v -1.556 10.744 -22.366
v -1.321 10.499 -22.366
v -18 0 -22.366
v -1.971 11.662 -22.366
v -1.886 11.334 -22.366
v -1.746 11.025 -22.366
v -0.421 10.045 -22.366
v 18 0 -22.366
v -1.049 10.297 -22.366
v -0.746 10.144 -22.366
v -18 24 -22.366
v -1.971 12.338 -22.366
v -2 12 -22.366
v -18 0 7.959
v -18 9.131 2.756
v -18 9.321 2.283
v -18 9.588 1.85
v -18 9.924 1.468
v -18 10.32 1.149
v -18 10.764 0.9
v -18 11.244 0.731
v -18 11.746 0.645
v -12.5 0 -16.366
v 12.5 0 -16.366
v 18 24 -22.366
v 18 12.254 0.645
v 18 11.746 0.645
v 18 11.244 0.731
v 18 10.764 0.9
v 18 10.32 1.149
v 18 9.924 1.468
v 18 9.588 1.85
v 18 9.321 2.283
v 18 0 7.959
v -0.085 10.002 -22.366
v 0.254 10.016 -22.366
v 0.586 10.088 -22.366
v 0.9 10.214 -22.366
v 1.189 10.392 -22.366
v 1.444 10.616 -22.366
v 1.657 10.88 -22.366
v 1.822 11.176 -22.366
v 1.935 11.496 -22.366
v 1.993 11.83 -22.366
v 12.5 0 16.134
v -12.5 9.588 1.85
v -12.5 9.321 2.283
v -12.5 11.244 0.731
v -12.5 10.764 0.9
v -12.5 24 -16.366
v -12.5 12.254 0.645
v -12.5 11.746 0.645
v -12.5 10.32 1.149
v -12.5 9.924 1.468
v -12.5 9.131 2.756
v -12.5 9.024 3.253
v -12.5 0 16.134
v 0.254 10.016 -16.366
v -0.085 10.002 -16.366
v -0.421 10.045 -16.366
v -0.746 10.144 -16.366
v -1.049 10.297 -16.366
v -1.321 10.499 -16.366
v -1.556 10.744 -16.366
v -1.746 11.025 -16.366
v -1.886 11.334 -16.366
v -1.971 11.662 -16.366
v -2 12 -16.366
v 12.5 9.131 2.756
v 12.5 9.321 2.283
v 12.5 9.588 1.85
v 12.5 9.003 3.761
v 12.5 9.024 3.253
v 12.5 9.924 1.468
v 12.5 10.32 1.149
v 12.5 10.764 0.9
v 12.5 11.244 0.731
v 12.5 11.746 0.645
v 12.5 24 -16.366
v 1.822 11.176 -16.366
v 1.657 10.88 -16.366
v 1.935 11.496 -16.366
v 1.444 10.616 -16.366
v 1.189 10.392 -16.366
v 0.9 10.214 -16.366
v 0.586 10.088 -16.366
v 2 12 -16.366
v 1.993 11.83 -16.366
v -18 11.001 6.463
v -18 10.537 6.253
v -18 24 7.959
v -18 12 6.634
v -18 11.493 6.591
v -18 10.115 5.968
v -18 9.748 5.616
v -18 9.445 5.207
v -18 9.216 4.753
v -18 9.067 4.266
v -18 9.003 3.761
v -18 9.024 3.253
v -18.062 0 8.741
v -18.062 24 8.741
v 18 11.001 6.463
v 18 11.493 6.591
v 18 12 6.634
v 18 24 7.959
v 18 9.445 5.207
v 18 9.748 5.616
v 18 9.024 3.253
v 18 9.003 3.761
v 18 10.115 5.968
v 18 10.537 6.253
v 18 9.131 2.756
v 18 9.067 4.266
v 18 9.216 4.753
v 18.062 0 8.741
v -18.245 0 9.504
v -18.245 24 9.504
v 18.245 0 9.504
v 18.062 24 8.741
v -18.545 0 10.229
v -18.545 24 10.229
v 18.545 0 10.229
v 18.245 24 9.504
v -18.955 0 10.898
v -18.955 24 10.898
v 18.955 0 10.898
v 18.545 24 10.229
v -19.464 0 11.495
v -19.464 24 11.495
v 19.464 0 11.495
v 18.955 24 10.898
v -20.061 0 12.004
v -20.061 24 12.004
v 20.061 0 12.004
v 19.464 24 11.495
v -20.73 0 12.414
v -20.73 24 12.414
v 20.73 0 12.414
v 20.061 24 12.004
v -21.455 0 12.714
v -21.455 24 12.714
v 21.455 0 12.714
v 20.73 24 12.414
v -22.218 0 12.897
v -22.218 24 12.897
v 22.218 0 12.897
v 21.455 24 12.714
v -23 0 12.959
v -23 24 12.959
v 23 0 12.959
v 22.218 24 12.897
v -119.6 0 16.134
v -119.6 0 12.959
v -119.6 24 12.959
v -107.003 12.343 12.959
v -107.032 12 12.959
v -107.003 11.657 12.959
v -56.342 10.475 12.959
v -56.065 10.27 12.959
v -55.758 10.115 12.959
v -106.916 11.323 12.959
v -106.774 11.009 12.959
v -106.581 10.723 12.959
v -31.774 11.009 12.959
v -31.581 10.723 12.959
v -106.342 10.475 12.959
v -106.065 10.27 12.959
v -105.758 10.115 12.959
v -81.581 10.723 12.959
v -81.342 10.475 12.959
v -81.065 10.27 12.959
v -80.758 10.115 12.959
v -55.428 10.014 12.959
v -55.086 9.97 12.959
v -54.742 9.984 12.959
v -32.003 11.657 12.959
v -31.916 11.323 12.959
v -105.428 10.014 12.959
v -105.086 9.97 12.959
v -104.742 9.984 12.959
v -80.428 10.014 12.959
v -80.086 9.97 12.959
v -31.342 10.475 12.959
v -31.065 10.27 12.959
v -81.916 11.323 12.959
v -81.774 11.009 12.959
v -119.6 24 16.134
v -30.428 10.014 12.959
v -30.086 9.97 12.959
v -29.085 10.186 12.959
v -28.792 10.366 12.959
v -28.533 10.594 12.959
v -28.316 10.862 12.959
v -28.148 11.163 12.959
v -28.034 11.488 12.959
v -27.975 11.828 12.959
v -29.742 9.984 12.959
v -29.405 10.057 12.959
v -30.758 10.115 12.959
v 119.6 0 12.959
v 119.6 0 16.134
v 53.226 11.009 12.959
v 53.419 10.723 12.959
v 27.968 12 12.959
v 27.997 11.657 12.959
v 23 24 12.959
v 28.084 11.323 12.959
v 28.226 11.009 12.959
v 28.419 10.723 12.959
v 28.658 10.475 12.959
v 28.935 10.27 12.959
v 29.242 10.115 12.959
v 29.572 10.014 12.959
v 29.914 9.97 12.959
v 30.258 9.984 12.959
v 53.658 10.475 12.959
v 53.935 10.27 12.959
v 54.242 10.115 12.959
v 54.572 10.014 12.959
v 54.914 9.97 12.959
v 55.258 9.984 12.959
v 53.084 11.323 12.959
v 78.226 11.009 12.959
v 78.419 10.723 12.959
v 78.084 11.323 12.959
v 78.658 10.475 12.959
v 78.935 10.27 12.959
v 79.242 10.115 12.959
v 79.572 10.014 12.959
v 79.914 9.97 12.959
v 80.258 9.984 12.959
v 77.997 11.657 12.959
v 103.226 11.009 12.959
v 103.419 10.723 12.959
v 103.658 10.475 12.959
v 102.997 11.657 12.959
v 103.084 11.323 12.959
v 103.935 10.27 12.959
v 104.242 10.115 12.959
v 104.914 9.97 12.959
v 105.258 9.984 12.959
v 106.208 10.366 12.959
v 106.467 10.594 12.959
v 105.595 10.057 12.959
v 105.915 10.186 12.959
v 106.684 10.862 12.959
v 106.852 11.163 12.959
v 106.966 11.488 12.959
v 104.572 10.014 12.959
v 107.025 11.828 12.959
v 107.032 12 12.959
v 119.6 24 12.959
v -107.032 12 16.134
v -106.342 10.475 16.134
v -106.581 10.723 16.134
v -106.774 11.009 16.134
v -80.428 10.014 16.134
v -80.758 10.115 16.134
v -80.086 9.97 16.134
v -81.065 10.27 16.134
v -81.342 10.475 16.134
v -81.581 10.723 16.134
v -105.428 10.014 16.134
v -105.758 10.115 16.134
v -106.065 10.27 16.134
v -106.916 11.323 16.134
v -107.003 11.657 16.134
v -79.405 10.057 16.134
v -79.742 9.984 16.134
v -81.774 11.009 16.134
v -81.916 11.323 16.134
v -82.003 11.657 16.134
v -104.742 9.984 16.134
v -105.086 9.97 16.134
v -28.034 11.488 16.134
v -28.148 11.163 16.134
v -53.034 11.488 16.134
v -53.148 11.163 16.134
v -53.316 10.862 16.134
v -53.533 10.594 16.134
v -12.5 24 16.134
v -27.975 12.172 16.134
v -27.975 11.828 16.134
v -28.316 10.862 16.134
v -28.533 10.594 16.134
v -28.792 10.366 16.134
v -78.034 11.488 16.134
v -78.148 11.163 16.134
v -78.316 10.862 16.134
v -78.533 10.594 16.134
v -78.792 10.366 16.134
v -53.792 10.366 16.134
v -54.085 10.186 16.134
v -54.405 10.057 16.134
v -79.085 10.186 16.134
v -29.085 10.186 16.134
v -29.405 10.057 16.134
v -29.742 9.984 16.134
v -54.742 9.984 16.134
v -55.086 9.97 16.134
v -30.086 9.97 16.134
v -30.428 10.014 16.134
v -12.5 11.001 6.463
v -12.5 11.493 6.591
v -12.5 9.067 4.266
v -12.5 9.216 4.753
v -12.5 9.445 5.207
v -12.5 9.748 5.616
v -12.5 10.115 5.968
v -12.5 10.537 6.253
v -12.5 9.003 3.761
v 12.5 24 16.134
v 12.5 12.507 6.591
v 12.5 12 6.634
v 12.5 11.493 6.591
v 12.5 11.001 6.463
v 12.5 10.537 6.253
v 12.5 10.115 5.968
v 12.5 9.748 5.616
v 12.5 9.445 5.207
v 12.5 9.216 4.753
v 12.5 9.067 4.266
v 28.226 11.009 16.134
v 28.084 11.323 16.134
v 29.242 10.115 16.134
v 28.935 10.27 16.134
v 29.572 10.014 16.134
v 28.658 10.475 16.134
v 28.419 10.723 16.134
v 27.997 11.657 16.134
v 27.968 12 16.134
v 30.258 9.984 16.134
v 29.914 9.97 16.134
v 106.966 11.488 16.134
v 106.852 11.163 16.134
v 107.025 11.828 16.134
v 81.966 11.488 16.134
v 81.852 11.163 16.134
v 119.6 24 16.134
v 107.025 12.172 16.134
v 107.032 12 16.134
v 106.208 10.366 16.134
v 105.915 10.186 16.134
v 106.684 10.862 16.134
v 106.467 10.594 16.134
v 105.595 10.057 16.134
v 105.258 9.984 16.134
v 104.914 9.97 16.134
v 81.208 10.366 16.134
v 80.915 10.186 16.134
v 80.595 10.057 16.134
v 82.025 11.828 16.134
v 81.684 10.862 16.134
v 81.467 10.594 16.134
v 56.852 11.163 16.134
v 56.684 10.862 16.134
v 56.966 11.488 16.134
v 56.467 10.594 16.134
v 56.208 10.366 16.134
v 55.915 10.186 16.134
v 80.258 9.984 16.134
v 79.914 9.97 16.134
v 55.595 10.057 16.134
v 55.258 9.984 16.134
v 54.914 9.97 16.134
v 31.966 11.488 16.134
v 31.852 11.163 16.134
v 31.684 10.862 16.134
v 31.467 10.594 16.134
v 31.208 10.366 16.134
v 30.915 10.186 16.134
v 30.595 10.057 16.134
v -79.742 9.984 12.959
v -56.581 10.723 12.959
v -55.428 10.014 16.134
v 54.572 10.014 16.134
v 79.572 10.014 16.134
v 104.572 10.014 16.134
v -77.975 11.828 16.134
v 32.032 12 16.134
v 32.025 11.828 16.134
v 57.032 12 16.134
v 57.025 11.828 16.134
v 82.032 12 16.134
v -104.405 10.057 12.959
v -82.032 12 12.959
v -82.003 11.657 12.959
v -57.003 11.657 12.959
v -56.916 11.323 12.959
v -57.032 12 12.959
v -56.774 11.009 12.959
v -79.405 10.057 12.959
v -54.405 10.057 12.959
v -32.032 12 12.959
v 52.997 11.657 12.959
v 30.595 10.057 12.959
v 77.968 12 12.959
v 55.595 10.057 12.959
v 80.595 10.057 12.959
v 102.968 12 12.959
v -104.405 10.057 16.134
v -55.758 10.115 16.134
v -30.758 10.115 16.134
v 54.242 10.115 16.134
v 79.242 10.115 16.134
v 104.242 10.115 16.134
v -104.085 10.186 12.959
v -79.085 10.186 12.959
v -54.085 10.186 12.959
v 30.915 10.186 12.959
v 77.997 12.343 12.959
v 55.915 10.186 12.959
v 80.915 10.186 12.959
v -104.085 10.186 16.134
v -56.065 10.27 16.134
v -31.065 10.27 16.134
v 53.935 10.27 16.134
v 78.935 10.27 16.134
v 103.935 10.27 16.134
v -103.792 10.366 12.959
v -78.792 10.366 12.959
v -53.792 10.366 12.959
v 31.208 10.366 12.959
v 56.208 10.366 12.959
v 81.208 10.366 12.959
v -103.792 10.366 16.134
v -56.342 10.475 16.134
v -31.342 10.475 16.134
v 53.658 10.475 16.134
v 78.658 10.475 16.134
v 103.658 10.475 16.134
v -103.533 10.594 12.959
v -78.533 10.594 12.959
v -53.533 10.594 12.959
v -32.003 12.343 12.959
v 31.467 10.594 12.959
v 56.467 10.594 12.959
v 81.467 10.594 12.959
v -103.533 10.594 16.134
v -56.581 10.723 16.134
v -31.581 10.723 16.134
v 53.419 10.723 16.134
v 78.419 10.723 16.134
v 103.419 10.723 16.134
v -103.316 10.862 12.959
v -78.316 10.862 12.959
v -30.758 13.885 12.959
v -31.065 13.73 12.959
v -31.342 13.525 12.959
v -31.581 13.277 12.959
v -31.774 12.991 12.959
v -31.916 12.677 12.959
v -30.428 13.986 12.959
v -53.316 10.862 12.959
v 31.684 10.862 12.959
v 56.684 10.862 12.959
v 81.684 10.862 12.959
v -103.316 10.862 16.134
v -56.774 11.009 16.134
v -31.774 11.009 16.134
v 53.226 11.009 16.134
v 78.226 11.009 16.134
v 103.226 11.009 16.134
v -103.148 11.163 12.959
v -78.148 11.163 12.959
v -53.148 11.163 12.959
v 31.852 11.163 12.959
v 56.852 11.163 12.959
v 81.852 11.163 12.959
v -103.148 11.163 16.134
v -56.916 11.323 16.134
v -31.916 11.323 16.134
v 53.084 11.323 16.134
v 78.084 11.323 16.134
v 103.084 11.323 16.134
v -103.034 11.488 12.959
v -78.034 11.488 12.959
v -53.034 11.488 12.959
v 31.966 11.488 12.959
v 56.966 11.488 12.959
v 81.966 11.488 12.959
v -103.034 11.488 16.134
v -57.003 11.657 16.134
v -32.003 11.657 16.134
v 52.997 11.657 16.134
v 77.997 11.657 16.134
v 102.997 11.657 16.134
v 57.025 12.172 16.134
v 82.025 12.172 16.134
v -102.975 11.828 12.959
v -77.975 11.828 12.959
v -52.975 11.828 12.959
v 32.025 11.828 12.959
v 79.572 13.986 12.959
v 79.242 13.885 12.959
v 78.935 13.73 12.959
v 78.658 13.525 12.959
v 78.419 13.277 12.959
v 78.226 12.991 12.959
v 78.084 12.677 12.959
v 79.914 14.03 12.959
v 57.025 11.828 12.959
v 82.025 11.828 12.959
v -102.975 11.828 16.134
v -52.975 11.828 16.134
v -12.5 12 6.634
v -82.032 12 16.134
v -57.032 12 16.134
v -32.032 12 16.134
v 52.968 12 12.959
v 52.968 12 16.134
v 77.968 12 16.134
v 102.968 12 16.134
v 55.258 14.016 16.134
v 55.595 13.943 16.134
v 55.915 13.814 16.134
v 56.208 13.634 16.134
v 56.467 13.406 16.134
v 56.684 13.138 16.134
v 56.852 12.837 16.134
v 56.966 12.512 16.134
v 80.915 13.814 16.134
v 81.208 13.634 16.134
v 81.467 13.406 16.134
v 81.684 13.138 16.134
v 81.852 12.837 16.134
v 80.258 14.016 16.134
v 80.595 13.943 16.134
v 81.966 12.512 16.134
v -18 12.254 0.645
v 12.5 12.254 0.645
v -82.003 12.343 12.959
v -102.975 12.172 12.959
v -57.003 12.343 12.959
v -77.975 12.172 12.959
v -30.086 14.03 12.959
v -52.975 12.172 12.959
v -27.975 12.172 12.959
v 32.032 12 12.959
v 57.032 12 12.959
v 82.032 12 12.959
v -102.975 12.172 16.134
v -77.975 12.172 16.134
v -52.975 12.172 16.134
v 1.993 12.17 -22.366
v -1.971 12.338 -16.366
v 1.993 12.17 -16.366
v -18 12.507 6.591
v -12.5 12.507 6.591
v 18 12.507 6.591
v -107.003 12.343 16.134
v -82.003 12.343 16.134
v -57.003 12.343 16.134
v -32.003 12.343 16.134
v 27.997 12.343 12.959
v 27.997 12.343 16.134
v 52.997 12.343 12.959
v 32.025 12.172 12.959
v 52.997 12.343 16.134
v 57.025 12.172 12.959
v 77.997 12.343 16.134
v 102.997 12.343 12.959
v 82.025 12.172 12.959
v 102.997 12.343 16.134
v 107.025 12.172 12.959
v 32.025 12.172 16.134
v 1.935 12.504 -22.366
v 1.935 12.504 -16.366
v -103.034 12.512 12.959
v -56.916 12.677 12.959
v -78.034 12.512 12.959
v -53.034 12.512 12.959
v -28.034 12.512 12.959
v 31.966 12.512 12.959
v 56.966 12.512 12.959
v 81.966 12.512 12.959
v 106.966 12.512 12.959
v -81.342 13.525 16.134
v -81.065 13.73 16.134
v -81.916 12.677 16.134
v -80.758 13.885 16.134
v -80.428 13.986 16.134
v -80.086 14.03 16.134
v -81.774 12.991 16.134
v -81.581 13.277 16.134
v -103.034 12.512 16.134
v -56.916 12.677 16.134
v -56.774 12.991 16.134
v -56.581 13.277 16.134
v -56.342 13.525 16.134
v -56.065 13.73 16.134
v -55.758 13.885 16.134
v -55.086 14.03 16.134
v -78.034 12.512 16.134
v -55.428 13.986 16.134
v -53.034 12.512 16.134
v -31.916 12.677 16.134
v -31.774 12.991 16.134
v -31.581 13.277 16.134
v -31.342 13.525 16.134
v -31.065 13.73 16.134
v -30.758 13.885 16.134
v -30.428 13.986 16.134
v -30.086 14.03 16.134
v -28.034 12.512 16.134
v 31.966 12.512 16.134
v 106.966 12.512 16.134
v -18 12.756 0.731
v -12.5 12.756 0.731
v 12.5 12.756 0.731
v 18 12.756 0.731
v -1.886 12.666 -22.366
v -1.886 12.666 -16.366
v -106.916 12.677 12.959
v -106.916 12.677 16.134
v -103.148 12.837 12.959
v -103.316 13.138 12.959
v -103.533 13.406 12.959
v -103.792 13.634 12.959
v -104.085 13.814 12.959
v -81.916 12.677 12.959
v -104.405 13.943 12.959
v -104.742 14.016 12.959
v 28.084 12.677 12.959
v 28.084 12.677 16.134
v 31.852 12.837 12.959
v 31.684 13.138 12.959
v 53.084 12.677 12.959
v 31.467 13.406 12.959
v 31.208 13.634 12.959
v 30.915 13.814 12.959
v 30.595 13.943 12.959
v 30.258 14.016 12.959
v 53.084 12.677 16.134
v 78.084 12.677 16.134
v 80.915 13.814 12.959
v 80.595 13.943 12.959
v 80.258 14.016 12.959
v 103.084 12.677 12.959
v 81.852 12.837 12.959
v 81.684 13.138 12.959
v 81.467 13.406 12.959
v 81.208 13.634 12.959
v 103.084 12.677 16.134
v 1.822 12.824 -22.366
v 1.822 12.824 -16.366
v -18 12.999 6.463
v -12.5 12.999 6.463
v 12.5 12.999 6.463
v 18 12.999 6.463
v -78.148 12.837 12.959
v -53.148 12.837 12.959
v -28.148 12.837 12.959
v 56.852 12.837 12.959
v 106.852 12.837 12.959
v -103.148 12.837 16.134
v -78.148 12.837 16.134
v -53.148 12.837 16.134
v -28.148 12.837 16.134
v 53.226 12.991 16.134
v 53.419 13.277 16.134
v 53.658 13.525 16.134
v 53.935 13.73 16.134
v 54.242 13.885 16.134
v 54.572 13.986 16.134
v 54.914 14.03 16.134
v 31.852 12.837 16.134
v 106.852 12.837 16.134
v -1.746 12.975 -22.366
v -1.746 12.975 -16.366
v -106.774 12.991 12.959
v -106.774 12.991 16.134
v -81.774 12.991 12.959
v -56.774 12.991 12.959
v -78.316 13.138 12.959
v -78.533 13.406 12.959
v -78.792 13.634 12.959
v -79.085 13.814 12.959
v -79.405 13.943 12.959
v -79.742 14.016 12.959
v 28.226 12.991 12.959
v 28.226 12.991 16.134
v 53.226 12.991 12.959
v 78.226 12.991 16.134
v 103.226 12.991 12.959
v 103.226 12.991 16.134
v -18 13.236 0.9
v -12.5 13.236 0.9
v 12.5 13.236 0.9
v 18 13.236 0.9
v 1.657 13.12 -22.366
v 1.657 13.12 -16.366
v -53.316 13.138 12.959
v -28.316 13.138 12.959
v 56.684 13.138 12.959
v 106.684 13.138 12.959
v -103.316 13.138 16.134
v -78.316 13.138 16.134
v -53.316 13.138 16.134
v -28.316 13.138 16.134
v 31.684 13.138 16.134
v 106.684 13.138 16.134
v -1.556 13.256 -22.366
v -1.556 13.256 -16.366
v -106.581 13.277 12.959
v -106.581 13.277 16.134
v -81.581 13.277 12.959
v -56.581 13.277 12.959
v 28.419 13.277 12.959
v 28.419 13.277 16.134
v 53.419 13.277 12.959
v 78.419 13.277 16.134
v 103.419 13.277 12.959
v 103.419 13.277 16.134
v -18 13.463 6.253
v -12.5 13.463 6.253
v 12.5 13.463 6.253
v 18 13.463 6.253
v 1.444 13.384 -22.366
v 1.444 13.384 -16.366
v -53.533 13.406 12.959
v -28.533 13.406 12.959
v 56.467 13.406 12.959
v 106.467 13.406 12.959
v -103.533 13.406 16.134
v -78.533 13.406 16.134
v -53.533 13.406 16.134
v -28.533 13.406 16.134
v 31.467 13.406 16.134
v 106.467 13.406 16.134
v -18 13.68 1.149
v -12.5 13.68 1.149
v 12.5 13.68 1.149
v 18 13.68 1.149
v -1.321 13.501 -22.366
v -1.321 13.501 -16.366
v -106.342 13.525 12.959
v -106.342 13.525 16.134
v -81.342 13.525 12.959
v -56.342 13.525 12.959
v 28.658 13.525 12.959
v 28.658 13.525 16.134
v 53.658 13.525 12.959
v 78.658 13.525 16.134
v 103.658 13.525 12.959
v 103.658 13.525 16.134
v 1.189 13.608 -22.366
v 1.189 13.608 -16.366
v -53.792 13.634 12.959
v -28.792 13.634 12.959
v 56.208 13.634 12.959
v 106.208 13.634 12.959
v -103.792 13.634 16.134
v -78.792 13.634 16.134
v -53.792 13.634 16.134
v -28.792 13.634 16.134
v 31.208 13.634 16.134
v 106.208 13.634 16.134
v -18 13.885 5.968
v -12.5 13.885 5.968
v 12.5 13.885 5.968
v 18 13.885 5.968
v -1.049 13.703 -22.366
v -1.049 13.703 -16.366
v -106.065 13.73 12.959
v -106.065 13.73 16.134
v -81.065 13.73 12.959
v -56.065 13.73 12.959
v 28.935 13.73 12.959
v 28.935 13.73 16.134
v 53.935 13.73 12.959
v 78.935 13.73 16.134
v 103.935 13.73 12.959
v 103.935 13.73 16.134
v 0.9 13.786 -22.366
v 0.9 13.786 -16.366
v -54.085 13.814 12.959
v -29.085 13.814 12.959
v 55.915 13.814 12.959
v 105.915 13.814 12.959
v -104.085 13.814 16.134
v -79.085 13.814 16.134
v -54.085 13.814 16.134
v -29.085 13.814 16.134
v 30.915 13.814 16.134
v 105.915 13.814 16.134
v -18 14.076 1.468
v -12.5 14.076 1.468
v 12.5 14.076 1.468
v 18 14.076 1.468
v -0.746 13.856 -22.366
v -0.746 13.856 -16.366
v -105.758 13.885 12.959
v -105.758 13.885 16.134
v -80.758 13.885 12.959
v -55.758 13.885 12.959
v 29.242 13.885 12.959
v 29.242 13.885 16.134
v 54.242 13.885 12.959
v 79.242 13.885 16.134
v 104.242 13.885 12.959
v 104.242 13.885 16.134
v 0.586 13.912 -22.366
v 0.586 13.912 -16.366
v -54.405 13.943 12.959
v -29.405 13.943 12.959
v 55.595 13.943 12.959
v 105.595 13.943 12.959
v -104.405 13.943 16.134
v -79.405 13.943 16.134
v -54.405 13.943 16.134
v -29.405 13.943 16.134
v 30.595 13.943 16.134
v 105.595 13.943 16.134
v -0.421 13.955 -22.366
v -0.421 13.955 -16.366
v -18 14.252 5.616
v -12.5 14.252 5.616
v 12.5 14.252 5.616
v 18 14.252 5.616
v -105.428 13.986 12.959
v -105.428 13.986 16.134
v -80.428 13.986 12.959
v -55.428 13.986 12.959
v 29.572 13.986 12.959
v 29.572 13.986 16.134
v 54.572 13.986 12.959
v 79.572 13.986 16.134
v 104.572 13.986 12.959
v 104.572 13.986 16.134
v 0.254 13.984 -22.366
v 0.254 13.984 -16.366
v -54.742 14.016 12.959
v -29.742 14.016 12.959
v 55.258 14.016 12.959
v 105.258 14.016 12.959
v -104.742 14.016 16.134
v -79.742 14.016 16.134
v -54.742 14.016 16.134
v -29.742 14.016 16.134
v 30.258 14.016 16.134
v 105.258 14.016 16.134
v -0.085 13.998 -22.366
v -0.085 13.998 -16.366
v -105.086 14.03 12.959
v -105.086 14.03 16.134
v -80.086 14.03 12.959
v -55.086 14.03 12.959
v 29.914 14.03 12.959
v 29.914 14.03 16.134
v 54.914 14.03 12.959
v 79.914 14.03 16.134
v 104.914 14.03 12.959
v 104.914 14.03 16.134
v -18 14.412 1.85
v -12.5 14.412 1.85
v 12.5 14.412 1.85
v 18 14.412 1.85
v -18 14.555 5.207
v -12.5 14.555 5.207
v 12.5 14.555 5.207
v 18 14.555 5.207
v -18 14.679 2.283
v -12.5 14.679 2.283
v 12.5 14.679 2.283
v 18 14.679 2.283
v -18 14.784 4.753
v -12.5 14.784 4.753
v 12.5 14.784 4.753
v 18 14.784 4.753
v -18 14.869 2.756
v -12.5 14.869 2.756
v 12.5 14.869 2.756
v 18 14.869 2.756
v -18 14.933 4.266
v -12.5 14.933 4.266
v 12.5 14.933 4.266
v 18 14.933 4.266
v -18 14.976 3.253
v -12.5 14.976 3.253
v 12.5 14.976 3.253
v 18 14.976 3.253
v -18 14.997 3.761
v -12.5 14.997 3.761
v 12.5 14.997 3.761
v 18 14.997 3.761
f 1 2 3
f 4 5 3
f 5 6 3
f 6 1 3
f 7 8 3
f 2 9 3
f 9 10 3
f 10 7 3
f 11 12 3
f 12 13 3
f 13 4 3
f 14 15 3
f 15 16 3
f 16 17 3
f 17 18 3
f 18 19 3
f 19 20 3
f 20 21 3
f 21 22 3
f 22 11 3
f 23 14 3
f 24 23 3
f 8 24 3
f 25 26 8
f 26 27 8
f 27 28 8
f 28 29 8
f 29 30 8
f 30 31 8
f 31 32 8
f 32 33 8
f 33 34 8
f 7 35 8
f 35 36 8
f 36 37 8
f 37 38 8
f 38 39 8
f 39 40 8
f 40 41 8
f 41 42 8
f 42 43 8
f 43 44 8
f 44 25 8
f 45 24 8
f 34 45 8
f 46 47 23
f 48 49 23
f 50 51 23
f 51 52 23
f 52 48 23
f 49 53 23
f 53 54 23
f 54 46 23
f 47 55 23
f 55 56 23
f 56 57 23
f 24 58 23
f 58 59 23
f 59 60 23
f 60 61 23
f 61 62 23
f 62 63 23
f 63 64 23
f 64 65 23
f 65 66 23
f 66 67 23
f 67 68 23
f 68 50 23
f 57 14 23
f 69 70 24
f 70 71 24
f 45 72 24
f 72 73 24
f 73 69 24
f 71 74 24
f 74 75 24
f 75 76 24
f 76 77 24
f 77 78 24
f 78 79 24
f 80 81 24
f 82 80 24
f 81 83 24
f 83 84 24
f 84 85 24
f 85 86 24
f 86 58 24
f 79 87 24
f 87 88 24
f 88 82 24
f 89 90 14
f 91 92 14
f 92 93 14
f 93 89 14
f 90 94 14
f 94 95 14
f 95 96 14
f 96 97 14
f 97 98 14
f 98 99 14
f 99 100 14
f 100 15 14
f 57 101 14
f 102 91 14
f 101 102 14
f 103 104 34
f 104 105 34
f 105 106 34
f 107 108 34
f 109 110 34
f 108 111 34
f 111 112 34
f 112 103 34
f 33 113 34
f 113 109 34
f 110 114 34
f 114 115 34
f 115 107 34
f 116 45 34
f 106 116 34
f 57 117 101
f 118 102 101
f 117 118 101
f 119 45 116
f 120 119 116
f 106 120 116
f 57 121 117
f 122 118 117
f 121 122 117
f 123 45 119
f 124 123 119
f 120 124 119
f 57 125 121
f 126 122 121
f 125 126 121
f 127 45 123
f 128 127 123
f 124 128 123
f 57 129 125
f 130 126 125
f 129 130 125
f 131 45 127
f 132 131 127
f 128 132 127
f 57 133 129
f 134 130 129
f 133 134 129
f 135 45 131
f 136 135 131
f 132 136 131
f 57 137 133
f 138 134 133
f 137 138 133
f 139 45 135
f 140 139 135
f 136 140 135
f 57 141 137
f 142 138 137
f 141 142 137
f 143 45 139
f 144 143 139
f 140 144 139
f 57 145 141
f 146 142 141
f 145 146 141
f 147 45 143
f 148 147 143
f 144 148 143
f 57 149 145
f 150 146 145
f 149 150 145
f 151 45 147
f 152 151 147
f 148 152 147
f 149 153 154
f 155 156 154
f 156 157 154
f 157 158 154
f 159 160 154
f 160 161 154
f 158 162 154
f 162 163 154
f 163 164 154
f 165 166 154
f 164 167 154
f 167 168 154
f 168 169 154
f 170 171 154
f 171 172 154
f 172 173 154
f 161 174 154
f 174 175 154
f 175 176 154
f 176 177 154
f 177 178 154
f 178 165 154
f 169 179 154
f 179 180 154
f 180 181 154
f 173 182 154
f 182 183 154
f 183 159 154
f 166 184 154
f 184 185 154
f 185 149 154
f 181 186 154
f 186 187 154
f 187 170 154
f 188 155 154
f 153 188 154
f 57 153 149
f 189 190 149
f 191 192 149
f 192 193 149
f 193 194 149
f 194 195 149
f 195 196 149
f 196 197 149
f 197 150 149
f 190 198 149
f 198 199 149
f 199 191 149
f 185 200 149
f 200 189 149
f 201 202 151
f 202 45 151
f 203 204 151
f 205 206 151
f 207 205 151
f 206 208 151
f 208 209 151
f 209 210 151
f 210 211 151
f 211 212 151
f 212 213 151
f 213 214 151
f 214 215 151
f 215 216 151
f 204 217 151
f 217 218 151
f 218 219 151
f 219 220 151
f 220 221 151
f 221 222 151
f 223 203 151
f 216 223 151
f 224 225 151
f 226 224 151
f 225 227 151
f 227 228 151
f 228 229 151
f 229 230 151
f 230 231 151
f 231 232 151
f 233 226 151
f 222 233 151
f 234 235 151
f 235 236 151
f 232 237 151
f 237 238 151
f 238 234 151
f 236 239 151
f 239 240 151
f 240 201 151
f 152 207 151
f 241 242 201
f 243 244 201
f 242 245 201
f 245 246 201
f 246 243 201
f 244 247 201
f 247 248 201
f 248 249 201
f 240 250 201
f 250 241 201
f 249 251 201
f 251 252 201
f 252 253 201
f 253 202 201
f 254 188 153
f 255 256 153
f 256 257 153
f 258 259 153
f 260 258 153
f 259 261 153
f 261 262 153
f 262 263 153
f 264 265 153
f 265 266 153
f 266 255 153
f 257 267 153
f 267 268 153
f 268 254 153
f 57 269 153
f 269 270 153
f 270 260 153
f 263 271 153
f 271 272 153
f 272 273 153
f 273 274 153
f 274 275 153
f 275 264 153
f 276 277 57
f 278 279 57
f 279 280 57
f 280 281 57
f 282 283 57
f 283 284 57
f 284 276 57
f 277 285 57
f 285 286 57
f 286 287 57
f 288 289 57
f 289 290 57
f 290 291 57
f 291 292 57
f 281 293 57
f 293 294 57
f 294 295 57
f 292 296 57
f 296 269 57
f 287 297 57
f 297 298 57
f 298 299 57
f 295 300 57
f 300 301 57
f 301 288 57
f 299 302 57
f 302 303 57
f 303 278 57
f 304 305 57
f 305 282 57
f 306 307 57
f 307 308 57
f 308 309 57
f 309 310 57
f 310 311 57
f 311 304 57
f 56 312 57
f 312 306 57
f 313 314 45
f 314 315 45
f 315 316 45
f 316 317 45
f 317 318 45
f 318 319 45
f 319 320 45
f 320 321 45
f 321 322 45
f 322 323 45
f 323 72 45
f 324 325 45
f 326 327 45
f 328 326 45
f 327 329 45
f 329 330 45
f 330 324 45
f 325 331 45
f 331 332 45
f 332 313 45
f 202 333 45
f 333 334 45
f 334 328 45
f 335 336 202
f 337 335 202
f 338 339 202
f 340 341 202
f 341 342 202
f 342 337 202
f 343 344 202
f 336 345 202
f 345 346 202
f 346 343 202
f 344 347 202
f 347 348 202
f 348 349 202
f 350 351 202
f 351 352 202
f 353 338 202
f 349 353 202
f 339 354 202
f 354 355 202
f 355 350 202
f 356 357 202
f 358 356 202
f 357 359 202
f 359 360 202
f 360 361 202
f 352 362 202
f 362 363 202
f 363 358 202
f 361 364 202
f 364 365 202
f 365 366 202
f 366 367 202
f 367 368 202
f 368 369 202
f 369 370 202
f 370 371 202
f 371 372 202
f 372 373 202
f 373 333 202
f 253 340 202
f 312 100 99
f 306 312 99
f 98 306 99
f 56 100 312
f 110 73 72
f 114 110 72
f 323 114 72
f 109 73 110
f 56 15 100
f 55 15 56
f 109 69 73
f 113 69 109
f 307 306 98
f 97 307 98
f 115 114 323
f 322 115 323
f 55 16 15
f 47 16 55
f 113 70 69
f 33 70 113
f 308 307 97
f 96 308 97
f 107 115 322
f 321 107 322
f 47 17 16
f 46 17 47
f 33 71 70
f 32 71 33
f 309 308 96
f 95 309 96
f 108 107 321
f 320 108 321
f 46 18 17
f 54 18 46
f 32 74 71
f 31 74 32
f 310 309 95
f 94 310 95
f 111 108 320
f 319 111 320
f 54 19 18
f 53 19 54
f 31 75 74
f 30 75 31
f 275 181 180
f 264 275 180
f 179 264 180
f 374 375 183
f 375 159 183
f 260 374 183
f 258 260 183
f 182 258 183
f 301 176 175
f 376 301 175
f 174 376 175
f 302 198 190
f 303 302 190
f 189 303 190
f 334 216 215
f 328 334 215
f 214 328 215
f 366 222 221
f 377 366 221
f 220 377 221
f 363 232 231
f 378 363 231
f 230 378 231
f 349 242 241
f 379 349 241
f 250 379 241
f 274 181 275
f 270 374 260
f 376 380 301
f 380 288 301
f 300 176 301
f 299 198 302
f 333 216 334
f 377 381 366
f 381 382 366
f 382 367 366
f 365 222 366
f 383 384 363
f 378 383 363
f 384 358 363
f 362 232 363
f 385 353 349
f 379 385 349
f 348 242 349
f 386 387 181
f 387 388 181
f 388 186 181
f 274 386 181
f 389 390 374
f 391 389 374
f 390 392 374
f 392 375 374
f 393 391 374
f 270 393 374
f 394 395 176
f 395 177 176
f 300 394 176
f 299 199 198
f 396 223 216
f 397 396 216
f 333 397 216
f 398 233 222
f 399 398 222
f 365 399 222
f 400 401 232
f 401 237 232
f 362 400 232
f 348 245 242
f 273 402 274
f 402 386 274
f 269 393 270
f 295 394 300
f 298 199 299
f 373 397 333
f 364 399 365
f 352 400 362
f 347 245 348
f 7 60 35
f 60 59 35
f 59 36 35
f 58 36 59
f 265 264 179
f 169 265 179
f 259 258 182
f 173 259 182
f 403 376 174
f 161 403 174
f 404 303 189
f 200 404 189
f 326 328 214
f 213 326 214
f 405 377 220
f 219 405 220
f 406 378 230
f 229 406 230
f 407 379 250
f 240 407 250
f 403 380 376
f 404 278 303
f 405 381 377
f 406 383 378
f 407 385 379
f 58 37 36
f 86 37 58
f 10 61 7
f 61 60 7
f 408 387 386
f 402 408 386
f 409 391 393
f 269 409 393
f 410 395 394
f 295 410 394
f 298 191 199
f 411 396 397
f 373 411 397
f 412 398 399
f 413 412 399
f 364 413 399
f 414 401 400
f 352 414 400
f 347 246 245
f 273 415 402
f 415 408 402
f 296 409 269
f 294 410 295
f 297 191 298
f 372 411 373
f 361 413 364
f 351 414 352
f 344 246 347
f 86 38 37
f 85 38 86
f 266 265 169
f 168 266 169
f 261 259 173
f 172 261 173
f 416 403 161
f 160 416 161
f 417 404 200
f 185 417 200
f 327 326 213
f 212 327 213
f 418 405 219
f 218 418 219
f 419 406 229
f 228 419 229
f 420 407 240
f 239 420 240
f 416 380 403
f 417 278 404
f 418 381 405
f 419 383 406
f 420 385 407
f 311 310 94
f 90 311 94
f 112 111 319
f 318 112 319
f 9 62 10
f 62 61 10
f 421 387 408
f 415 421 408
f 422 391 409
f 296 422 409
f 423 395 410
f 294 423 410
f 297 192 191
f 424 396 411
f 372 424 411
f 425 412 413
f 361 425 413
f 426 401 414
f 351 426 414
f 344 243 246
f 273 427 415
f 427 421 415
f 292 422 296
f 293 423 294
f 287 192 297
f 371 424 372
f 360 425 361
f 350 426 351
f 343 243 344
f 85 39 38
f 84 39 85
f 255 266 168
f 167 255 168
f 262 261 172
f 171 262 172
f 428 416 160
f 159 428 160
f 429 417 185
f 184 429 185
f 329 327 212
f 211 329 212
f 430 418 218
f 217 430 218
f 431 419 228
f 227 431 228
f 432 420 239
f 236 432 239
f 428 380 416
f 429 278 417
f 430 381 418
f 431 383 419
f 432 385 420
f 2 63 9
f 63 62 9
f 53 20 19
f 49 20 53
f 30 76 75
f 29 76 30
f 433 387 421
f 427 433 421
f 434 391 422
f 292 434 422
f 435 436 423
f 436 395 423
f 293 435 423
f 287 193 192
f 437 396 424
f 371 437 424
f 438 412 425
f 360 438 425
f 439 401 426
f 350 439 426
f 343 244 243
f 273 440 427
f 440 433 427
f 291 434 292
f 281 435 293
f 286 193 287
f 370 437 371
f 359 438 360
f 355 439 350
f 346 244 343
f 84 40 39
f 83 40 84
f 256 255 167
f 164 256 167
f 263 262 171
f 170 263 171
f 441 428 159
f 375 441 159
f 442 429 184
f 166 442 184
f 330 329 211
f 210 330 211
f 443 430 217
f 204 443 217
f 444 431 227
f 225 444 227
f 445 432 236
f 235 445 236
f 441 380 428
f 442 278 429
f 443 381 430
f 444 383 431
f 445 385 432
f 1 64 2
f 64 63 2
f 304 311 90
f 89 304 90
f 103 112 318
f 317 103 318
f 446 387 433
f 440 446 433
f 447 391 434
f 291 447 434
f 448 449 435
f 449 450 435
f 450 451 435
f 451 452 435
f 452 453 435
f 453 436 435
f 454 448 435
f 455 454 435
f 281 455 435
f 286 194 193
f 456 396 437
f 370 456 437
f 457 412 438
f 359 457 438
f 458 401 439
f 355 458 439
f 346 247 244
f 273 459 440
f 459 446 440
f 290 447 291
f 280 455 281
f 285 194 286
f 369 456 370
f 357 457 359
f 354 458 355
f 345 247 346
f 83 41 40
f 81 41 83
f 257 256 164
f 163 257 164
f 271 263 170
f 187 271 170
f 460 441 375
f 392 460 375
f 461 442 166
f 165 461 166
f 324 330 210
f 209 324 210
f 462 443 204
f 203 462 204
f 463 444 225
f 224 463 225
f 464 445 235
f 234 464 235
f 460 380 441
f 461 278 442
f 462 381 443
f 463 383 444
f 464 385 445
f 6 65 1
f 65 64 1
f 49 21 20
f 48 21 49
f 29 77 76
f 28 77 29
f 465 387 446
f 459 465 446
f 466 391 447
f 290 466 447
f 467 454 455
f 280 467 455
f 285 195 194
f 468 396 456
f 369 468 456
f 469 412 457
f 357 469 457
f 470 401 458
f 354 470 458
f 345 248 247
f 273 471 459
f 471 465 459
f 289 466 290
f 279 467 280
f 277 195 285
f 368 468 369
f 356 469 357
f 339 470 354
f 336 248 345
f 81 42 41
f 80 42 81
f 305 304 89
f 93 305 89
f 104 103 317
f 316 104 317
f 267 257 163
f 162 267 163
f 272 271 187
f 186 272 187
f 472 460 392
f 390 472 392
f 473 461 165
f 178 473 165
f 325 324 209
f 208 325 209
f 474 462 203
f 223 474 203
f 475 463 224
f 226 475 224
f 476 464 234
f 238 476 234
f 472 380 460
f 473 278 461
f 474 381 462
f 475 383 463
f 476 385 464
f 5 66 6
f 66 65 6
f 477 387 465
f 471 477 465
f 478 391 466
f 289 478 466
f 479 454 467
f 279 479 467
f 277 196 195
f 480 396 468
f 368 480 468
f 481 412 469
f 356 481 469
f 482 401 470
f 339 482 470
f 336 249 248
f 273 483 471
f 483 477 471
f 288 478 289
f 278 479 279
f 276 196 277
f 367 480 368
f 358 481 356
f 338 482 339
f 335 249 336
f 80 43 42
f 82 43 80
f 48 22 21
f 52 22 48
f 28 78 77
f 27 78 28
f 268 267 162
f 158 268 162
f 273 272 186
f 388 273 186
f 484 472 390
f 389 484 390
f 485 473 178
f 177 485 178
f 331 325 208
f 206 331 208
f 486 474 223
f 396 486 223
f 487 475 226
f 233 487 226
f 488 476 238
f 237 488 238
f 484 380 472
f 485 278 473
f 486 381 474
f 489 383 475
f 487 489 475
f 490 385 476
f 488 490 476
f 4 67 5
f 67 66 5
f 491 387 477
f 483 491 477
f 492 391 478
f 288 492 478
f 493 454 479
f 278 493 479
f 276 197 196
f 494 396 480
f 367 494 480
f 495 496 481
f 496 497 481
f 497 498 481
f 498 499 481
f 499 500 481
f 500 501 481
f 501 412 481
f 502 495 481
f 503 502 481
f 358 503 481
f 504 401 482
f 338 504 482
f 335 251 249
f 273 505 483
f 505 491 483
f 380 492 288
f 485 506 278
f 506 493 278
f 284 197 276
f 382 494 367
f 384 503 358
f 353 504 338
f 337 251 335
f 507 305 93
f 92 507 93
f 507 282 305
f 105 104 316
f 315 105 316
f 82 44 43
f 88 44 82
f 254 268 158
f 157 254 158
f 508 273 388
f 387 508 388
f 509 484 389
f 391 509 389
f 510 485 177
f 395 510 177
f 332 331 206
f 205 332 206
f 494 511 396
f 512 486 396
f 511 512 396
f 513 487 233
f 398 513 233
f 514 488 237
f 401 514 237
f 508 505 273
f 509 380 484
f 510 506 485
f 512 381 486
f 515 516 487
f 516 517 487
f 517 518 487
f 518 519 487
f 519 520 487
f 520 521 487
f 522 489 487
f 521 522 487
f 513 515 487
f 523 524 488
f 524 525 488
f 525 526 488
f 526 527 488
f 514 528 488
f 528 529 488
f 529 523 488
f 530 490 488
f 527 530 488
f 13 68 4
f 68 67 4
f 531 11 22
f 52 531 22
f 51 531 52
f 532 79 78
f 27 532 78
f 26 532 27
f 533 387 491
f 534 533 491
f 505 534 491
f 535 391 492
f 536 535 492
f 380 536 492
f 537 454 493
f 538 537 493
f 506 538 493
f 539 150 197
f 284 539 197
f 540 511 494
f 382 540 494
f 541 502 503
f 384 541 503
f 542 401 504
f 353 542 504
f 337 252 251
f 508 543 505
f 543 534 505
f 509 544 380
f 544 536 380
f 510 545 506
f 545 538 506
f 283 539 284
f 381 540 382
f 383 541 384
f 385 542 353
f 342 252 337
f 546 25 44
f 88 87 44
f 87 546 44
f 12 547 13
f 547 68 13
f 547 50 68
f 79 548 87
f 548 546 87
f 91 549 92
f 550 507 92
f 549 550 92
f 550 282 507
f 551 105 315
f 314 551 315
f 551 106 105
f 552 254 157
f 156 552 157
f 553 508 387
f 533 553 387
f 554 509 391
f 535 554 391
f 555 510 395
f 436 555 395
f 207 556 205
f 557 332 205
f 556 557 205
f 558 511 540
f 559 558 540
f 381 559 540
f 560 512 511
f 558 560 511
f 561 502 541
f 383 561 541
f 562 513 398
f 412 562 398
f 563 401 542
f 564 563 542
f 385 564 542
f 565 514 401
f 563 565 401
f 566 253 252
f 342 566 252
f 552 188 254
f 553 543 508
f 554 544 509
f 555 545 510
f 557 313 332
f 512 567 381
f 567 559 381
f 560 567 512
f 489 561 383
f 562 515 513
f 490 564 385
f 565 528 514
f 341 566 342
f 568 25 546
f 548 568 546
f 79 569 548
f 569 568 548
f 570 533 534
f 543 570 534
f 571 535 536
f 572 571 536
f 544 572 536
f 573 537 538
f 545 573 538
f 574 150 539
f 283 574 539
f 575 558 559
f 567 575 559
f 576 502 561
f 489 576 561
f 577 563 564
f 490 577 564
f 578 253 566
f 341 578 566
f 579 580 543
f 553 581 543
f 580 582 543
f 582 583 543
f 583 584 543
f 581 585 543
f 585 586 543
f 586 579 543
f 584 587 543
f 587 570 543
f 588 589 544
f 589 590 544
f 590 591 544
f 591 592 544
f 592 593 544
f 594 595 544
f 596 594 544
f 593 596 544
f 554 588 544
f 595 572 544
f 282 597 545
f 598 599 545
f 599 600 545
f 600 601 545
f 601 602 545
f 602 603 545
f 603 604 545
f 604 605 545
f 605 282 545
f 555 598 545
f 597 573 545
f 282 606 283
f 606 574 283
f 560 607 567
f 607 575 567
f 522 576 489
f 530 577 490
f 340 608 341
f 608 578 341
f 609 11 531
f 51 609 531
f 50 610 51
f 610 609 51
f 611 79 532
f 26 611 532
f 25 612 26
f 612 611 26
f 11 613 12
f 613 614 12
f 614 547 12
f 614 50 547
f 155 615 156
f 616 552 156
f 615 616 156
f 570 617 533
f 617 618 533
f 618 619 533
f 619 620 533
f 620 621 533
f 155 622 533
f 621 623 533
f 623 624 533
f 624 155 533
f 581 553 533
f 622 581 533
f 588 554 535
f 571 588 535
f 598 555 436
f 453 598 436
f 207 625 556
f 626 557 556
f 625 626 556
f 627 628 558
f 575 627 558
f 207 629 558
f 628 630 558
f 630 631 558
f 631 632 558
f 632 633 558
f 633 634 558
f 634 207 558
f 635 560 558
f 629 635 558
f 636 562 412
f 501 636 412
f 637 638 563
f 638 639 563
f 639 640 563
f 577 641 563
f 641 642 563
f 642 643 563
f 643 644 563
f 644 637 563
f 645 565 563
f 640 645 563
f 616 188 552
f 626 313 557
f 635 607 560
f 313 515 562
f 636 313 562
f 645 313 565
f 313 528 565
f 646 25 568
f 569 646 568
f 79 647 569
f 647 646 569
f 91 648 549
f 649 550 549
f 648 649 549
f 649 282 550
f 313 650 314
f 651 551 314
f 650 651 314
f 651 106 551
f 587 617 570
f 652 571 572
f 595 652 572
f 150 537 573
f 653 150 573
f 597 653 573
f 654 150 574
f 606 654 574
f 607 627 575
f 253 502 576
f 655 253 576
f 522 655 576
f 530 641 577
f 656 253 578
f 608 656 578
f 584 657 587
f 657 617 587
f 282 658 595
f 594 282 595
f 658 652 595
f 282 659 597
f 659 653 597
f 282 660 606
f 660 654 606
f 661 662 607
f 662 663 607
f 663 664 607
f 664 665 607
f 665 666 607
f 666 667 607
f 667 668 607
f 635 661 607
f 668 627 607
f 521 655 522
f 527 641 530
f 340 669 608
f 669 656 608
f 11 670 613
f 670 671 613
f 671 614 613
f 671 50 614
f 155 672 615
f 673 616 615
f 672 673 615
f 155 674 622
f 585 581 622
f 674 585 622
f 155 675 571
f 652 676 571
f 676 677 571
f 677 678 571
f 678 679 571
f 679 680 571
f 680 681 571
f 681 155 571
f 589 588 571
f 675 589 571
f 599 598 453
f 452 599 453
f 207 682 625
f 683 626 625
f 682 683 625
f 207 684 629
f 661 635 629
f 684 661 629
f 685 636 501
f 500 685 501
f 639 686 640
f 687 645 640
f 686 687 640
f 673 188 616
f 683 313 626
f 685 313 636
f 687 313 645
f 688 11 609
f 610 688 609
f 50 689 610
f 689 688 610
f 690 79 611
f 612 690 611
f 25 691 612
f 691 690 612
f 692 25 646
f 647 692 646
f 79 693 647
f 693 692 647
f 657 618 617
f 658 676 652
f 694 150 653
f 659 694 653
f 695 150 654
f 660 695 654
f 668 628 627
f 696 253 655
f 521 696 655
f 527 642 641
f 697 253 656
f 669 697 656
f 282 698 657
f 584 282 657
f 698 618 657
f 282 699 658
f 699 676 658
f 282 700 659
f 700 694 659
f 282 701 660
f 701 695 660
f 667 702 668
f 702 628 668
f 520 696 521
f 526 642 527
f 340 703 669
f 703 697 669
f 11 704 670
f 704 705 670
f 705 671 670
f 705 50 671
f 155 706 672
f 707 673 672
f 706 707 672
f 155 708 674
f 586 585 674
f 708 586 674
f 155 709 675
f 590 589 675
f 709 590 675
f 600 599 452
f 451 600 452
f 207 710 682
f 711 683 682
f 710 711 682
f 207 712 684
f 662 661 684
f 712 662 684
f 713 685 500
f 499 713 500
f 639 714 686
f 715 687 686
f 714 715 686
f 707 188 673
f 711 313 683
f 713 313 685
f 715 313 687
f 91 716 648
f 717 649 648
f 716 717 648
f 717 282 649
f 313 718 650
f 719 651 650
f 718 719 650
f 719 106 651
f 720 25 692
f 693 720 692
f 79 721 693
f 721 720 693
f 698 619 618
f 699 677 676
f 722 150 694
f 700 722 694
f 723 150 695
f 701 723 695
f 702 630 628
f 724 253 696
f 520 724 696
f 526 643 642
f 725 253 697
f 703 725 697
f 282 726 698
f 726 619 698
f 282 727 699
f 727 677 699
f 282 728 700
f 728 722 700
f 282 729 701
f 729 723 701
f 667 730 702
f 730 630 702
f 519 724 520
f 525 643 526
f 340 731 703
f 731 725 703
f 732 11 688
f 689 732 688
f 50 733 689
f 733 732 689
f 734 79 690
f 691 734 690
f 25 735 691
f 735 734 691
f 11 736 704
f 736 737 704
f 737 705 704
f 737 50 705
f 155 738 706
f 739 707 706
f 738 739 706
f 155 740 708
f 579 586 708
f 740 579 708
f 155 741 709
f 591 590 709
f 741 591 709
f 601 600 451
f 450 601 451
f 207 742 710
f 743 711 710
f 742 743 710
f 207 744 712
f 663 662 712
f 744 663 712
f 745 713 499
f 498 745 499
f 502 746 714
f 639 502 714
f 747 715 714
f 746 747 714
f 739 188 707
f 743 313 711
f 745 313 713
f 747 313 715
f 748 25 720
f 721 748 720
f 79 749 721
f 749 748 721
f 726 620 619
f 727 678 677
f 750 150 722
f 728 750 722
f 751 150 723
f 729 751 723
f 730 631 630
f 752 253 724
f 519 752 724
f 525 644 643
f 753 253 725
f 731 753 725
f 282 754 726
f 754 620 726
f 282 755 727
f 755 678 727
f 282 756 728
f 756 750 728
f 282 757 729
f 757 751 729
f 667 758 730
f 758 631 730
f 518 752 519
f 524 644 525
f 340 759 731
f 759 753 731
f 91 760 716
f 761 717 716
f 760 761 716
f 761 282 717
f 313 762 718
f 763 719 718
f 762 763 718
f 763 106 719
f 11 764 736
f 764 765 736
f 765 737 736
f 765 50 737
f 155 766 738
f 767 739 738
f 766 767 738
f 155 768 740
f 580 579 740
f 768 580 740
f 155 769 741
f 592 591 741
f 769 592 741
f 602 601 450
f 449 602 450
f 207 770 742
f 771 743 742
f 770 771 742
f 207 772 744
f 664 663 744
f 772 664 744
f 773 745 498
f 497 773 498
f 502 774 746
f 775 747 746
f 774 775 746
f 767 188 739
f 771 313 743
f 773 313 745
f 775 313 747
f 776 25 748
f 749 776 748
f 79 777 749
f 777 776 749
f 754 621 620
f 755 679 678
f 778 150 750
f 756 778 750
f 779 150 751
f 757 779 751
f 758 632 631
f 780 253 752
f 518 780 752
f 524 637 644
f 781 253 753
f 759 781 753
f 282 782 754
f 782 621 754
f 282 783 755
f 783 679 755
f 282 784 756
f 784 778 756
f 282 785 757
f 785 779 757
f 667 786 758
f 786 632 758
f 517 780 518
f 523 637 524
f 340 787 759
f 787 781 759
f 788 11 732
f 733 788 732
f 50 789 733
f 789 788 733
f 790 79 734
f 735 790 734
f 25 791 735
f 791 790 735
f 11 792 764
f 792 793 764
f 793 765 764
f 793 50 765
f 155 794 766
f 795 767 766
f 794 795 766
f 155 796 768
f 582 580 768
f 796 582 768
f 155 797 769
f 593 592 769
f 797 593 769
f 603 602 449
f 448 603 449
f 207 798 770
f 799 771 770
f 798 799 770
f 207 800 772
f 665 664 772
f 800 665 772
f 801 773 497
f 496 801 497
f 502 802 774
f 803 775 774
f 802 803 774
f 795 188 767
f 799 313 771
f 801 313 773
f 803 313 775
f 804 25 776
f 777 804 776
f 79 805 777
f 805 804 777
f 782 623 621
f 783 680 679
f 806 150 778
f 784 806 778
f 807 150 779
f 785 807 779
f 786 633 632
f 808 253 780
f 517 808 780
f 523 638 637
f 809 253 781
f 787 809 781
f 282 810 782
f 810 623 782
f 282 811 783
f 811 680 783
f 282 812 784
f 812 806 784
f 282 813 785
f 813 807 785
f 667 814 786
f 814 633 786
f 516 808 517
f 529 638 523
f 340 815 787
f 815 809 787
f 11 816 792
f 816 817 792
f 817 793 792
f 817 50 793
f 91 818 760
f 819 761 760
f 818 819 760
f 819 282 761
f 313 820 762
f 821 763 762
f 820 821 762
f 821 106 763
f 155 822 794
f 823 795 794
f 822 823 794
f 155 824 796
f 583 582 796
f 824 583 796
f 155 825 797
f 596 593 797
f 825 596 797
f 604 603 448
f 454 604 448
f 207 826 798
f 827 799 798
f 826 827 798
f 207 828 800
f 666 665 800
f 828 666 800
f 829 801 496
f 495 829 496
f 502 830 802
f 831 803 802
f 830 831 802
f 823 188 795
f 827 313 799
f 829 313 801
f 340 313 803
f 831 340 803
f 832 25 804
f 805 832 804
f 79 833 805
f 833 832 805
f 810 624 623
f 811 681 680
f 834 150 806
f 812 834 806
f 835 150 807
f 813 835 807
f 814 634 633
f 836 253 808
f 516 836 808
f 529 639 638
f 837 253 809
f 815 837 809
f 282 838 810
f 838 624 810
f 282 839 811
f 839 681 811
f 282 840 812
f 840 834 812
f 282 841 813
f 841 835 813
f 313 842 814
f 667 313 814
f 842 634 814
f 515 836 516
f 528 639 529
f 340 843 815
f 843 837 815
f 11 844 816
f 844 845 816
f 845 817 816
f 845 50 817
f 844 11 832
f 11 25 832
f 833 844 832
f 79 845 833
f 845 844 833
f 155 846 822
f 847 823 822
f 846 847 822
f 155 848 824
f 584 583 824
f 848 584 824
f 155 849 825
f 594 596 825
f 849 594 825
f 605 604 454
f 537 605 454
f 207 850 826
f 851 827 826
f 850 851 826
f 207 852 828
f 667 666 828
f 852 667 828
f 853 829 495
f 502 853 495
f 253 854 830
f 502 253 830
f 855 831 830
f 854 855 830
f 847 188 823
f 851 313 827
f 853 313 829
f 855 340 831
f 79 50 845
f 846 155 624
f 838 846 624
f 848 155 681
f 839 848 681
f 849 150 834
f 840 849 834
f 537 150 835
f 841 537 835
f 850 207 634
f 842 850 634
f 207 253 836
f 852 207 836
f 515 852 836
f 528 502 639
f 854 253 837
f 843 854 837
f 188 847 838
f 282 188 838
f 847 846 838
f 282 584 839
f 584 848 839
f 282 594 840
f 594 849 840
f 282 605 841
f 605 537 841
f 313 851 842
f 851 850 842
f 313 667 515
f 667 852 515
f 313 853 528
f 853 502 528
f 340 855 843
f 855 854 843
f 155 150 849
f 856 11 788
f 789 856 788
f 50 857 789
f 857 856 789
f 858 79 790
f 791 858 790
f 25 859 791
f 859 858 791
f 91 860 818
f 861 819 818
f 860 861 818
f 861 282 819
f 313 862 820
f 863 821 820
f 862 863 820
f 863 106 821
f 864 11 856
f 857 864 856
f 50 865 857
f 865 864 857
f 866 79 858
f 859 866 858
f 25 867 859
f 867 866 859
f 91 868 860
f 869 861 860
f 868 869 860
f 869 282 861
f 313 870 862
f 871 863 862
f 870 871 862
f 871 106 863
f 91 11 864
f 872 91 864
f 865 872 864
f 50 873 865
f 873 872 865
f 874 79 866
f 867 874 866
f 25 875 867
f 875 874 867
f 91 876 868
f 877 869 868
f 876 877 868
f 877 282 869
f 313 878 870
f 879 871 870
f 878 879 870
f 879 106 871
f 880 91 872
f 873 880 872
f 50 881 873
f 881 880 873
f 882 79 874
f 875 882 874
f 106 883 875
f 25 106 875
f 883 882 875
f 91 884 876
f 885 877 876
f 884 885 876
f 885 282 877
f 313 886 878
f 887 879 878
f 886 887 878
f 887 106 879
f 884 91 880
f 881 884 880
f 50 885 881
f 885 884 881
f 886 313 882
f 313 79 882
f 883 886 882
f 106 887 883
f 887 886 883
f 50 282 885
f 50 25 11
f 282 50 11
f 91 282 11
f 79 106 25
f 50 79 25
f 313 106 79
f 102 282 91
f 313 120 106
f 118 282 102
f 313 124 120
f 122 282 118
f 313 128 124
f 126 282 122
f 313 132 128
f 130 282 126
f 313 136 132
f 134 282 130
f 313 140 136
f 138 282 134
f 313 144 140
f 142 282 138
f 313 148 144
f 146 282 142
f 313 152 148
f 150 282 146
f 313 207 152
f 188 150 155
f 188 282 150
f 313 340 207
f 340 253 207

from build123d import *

# Parameters (mm, degrees)
BOSS_EXTRUDE1_DEPTH     = 24
SKETCH2_R               = 2
CUT_EXTRUDE1_DEPTH      = 24
SKETCH3_R               = 3
CUT_EXTRUDE2_DEPTH      = 1
CUT_EXTRUDE2_DEPTH_BACK = 37
SKETCH4_W               = 3.175
SKETCH4_H               = 24
BOSS_EXTRUDE2_DEPTH     = 101.6
SKETCH7_R               = 2.032
CUT_EXTRUDE3_DEPTH      = 4.175
FILLET1_R               = 5
FILLET2_R               = 5


with BuildPart() as part:
    # Sketch1 → Boss-Extrude1 (new body)
    with BuildSketch(Plane(origin=(0, 0, 0), x_dir=(1, 0, 0), z_dir=(0, 1, 0))):
        Polygon((12.5, -16.134036145), (12.5, 16.365963855), (-12.5, 16.365963855), (-12.5, -16.134036145), (-18, -16.134036145), (-18, 22.365963855), (18, 22.365963855), (18, -16.134036145), align=None)
    extrude(amount=BOSS_EXTRUDE1_DEPTH)

    # Sketch2 → Cut-Extrude1 (cut)
    with BuildSketch(Plane(origin=(0, 0, -22.365963855), x_dir=(-1, 0, 0), z_dir=(0, 0, -1))):
        with Locations((0, 12)):
            Circle(SKETCH2_R)
    extrude(amount=-CUT_EXTRUDE1_DEPTH, mode=Mode.SUBTRACT)

    # Sketch3 → Cut-Extrude2 (cut, two sides)
    with BuildSketch(Plane.ZY.offset(18)) as cut_extrude2_sk:
        with Locations((3.634036145, 12)):
            Circle(SKETCH3_R)
    extrude(amount=CUT_EXTRUDE2_DEPTH, mode=Mode.SUBTRACT)
    extrude(cut_extrude2_sk.sketch, amount=-CUT_EXTRUDE2_DEPTH_BACK, mode=Mode.SUBTRACT)

    # Sketch4 → Boss-Extrude2 (add)
    with BuildSketch(Plane.ZY.offset(18)):
        with Locations((14.546536145, 12)):
            Rectangle(SKETCH4_W, SKETCH4_H)
    boss_extrude2 = extrude(amount=BOSS_EXTRUDE2_DEPTH)

    # Sketch7 → Cut-Extrude3 (cut, through all)
    with BuildSketch(Plane(origin=(0, 0, 12.959036145), x_dir=(-1, 0, 0), z_dir=(0, 0, -1))):
        with Locations((30, 12)):
            Circle(SKETCH7_R)
        with Locations((55, 12)):
            Circle(SKETCH7_R)
        with Locations((80, 12)):
            Circle(SKETCH7_R)
        with Locations((105, 12)):
            Circle(SKETCH7_R)
        with Locations((130, 12)):
            Circle(SKETCH7_R)
        with Locations((155, 12)):
            Circle(SKETCH7_R)
    cut_extrude3 = extrude(amount=-CUT_EXTRUDE3_DEPTH, mode=Mode.SUBTRACT)

    # Mirror1: Boss-Extrude2, Cut-Extrude3 across plane
    add(boss_extrude2.mirror(Plane.ZY))
    add(cut_extrude3.mirror(Plane.ZY), mode=Mode.SUBTRACT)

    # Fillet1
    fillet1_edges = [part.edges().sort_by_distance(p)[0] for p in [
        (-18, 12, 12.959036145),
    ]]
    fillet(fillet1_edges, radius=FILLET1_R)

    # Fillet2
    fillet2_edges = [part.edges().sort_by_distance(p)[0] for p in [
        (18, 12, 12.959036145),
    ]]
    fillet(fillet2_edges, radius=FILLET2_R)


solid = part.part
